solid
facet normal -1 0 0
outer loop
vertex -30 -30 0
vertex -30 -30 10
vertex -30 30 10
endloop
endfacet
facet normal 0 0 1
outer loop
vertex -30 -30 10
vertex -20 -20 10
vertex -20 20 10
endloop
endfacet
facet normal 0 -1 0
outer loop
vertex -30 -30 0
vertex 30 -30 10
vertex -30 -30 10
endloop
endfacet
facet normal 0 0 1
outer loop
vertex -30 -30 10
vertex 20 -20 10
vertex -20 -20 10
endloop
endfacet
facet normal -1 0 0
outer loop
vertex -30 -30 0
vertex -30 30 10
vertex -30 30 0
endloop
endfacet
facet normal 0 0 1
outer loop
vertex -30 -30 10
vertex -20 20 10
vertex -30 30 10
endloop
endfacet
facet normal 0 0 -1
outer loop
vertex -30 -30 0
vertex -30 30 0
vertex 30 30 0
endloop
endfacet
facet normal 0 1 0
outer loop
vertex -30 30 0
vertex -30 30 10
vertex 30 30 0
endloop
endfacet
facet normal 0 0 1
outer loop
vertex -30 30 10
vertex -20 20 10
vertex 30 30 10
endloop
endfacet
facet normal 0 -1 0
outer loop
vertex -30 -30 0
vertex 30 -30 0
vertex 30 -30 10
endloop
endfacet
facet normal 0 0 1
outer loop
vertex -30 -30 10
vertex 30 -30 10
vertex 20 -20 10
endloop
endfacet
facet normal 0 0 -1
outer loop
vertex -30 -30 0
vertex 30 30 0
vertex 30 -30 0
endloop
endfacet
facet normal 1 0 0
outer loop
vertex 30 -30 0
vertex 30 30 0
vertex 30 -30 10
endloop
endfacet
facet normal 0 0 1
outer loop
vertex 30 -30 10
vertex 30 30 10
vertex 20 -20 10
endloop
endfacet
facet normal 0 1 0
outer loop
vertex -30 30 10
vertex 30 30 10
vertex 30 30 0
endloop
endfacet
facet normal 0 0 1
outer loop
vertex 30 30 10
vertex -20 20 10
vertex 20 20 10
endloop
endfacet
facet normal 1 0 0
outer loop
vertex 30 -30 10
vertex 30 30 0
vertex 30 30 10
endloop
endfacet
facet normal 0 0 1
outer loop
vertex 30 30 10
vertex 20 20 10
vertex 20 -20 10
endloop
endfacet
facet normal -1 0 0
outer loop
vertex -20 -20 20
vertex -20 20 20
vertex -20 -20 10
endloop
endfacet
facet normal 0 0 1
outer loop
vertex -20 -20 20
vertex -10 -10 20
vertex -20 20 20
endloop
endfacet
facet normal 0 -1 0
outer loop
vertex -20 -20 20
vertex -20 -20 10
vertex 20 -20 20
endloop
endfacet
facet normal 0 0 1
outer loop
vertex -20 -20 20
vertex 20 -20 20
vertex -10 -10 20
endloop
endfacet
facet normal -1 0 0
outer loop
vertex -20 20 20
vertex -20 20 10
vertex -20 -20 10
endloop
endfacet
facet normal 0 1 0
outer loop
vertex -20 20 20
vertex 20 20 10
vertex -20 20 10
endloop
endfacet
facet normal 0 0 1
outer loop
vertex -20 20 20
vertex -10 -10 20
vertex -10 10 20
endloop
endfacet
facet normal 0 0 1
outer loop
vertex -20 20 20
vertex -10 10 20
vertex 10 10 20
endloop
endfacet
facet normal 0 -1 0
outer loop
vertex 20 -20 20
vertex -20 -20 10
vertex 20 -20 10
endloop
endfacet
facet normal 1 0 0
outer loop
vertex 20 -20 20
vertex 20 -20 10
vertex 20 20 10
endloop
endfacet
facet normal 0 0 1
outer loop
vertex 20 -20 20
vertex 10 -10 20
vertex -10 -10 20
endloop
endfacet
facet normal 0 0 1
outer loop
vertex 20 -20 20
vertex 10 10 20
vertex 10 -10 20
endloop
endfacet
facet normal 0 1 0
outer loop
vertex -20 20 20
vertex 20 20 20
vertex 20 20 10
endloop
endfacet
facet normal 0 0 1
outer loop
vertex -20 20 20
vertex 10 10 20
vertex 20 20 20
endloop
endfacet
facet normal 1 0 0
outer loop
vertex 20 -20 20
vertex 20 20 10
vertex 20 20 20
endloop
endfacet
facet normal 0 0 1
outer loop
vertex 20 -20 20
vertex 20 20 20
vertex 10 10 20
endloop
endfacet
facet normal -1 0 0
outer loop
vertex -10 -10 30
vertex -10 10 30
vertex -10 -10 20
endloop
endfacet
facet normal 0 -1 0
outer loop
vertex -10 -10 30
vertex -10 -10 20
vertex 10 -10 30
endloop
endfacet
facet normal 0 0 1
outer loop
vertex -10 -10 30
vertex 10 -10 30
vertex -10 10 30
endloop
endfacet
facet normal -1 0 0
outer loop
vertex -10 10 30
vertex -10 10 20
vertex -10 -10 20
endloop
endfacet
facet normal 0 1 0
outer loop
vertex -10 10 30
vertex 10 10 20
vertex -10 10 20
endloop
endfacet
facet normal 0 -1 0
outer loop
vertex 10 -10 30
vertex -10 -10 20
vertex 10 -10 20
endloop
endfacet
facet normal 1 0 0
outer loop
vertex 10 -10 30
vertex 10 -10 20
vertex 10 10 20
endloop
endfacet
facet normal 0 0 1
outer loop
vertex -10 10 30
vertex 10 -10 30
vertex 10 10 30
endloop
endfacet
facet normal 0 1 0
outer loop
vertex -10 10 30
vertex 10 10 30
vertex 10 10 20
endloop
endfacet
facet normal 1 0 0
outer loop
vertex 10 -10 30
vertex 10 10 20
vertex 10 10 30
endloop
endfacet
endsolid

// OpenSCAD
// 3段の階段状ピラミッド
// 各段は中心を揃えて積み上げる

// 1段目: 60mm x 60mm x 高さ10mm
translate([-30, -30, 0])
    cube([60, 60, 10]);

// 2段目: 40mm x 40mm x 高さ10mm
translate([-20, -20, 10])
    cube([40, 40, 10]);

// 3段目: 20mm x 20mm x 高さ10mm
translate([-10, -10, 20])
    cube([20, 20, 10]);
